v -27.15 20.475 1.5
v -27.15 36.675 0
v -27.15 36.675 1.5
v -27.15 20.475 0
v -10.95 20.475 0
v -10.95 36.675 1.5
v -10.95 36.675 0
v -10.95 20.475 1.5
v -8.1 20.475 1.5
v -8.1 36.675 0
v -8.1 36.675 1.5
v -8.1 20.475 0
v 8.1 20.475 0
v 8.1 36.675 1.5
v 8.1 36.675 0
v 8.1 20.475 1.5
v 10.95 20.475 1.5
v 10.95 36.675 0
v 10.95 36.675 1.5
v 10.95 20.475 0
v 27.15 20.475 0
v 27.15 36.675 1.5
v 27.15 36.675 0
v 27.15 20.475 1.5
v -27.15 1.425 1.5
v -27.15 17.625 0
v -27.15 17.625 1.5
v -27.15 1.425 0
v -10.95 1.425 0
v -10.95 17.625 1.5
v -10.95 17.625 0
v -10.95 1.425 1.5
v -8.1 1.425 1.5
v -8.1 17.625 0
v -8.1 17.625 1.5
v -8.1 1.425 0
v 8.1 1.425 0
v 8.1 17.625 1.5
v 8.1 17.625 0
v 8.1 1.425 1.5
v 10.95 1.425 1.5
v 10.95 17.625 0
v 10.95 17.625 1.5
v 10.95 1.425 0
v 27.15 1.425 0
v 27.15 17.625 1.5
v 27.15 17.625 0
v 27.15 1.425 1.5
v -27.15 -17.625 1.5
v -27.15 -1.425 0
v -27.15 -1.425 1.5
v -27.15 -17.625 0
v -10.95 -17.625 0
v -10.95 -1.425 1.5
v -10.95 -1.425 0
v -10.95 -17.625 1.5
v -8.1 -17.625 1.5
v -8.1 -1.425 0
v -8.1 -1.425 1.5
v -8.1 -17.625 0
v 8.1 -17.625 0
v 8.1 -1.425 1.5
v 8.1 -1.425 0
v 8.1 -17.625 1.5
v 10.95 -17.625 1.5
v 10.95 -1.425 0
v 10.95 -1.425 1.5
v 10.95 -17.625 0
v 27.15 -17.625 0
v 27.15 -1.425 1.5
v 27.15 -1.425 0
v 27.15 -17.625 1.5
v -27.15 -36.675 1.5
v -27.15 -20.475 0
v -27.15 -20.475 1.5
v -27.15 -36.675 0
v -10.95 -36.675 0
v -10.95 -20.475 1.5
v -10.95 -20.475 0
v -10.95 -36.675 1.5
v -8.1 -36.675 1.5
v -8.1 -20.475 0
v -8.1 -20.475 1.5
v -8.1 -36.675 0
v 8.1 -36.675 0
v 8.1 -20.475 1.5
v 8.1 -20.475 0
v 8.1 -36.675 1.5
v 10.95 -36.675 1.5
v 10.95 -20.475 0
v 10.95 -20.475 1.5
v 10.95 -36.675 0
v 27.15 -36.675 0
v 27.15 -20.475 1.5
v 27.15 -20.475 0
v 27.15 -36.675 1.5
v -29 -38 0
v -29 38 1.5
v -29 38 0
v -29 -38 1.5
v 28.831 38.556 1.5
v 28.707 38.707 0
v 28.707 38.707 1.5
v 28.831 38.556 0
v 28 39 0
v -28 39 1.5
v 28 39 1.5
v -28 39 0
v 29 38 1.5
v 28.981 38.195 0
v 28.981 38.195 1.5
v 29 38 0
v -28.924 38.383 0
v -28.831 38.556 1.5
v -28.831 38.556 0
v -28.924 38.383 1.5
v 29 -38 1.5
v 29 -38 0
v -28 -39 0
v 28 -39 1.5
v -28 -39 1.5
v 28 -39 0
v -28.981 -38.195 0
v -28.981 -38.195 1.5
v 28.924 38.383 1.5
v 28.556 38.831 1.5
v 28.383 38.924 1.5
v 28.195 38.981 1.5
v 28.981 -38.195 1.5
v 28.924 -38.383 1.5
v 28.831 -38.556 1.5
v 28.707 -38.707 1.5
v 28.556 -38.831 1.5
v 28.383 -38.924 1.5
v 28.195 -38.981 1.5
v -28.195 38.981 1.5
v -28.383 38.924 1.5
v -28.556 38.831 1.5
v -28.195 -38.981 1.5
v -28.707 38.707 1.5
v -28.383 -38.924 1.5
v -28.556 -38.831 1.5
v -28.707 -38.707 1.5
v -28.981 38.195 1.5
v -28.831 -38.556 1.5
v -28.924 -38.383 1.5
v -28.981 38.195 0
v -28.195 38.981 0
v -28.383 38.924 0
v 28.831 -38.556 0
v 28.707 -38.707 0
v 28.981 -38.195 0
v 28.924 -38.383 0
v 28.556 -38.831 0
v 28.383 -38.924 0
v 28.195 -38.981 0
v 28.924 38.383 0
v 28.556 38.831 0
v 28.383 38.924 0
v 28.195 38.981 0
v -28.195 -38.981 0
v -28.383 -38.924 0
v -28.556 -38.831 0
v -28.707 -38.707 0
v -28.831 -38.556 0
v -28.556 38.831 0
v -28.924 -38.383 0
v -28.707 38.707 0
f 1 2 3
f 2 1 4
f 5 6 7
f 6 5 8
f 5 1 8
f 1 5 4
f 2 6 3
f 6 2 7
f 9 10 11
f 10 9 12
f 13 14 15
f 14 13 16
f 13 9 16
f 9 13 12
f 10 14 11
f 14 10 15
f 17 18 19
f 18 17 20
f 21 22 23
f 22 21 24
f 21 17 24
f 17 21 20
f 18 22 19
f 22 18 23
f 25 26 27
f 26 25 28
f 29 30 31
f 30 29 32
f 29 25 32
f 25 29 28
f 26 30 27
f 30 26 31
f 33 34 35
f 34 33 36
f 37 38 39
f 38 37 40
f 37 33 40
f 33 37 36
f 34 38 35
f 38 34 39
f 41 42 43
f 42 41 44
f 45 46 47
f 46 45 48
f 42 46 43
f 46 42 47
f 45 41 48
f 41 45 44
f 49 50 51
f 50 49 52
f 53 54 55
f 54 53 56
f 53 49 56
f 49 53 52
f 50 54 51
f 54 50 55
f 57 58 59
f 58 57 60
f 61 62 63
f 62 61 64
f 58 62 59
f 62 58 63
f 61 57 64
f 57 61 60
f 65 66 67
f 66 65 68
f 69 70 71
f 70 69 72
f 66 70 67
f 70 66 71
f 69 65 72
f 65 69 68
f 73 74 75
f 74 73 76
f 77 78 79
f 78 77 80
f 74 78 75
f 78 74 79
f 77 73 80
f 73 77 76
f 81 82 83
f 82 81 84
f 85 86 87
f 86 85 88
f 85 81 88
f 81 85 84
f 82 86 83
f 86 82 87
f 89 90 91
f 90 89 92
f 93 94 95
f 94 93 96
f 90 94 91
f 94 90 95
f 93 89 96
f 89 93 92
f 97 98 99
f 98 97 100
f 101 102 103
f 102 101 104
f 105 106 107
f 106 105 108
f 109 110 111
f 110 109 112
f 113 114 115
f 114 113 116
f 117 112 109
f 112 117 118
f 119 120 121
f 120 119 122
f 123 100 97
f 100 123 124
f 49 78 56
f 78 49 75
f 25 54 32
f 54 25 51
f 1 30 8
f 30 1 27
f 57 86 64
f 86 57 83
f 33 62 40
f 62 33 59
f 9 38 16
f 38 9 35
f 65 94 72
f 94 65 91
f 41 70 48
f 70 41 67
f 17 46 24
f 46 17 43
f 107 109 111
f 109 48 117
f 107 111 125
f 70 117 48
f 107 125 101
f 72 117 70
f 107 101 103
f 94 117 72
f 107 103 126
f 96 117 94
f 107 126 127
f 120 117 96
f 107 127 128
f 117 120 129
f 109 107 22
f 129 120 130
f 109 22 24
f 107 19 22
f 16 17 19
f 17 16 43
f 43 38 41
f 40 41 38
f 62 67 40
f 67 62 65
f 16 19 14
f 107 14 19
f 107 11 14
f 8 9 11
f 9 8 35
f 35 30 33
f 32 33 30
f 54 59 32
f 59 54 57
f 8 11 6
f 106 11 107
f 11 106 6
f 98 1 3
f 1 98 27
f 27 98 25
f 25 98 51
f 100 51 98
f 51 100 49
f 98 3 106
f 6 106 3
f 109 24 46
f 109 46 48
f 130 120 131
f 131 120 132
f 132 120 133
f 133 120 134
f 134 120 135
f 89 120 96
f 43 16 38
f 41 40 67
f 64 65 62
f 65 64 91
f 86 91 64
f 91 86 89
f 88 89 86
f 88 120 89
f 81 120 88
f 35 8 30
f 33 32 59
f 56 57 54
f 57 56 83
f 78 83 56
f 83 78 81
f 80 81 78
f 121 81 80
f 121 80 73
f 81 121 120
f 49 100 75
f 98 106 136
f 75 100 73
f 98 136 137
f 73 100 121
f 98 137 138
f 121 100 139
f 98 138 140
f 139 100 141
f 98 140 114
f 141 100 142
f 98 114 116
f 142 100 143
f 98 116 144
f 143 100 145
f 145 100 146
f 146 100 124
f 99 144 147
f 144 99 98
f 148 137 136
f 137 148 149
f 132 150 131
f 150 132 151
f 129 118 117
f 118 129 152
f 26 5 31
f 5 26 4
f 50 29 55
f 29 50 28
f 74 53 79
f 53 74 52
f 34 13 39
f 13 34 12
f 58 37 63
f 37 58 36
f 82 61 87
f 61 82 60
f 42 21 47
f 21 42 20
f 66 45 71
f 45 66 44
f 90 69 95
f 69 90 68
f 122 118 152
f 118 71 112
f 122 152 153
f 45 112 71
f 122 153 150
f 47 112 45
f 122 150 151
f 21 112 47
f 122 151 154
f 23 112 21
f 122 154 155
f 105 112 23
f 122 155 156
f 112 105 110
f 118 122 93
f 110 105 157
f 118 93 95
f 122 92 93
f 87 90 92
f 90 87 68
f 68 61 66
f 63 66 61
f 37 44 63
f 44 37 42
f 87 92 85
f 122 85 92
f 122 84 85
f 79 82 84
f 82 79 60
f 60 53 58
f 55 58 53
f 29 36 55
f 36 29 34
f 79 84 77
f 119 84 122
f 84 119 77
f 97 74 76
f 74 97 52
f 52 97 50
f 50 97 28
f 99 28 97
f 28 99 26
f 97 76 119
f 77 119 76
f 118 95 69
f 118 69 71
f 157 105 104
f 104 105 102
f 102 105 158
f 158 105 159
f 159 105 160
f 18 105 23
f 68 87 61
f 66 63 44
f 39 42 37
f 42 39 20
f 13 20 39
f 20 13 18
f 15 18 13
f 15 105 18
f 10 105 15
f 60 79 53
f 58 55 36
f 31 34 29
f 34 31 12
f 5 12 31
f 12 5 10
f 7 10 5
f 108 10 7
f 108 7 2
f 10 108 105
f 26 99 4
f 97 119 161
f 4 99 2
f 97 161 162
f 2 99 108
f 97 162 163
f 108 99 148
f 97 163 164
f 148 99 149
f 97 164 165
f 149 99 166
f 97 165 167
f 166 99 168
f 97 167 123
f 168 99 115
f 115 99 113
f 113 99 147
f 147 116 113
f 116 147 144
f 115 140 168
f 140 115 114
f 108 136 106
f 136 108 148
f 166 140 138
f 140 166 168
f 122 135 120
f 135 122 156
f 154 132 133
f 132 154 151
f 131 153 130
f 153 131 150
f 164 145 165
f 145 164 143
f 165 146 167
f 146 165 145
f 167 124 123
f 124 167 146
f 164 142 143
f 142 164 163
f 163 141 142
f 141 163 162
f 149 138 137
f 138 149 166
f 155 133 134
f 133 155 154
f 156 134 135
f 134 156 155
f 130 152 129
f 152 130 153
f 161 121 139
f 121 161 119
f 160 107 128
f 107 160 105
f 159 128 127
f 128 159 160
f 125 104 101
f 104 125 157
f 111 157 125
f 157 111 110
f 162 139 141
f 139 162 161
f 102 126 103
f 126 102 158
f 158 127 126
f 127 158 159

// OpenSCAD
// MacroPad RP2040 Top Interim Layer
// Design for Adafruit MacroPad RP2040 keyboard controller
// Author: Generated for CircuitPython EVM Controller project
// License: MIT

// Cheatsheet: https://openscad.org/cheatsheet/index.html?version=2021.01

// =============================================================================
// PARAMETERS
// =============================================================================

// RP2040 PCB parameters
pcb_length = 105;          // RP2040 PCB length (mm)
pcb_width = 60;            // RP2040 PCB width (mm)
pcb_thickness = 1.6;       // Standard PCB thickness (mm)
pcb_clearance = 1;         // Space around PCB (mm)
pcb_height_clearance = 8;  // Space above PCB for components (mm)

// Overall cover dimensions
cover_length = 58;         // Total length of cover (mm)
cover_width = 78;          // Total width of cover (mm)  
cover_thickness = 1.5;       // Thickness of top plate (mm)
corner_radius = 1;         // Rounded corner radius (mm)

// Key switch parameters (Cherry MX compatible) + some space
key_switch_size = 14 + 2;   // Square hole size for key switches (mm)
key_switch_spacing = 19.05; // Center-to-center spacing (0.75" standard)
key_rows = 4;              // Number of rows
key_cols = 3;              // Number of columns

// Key switch grid positioning (relative to cover center)
keys_offset_x = 0;         // X offset of key grid center
keys_offset_y = 0;       // Y offset of key grid center (negative = toward bottom)

// Mounting and clearance
wall_thickness = 2;        // Wall thickness for sides (if adding later)
clearance = 0.2;           // General clearance for 3D printing (mm)

// =============================================================================
// MAIN OBJECT
// =============================================================================

difference() {
        
    // Base cover plate
    base_cover();
    
    // Cut out holes for key switches
    key_switch_holes();
    
}

// =============================================================================
// MODULES (Functions)
// =============================================================================

// Create the base cover plate with rounded corners
module base_cover() {
    
    union() {
        // Using hull() with corner cylinders to create rounded rectangle
        hull() {
            // Four corner cylinders to create rounded rectangle
            translate([-(cover_length/2 - corner_radius), -(cover_width/2 - corner_radius), 0])
                cylinder(h = cover_thickness, r = corner_radius, $fn = 32);
            
            translate([+(cover_length/2 - corner_radius), -(cover_width/2 - corner_radius), 0])
                cylinder(h = cover_thickness, r = corner_radius, $fn = 32);
            
            translate([+(cover_length/2 - corner_radius), +(cover_width/2 - corner_radius), 0])
                cylinder(h = cover_thickness, r = corner_radius, $fn = 32);
            
            translate([-(cover_length/2 - corner_radius), +(cover_width/2 - corner_radius), 0])
                cylinder(h = cover_thickness, r = corner_radius, $fn = 32);
        }
        
    }
}

// Create all key switch holes in a 3x4 matrix
module key_switch_holes() {
    // Calculate starting position for grid (top-left key)
    start_x = keys_offset_x - (key_switch_spacing * (key_cols - 1) / 2);
    start_y = keys_offset_y + (key_switch_spacing * (key_rows - 1) / 2);
    
    // Create grid of holes
    for (row = [0 : key_rows - 1]) {
        for (col = [0 : key_cols - 1]) {
            translate([
                start_x + (col * key_switch_spacing),
                start_y - (row * key_switch_spacing),
                -0.5  // Extend slightly below surface for clean cut
            ]) {
                // Square hole for key switch
                cube([
                    key_switch_size + clearance,
                    key_switch_size + clearance,
                    cover_thickness + 5
                ], center = true);
            }
        }
    }
}
